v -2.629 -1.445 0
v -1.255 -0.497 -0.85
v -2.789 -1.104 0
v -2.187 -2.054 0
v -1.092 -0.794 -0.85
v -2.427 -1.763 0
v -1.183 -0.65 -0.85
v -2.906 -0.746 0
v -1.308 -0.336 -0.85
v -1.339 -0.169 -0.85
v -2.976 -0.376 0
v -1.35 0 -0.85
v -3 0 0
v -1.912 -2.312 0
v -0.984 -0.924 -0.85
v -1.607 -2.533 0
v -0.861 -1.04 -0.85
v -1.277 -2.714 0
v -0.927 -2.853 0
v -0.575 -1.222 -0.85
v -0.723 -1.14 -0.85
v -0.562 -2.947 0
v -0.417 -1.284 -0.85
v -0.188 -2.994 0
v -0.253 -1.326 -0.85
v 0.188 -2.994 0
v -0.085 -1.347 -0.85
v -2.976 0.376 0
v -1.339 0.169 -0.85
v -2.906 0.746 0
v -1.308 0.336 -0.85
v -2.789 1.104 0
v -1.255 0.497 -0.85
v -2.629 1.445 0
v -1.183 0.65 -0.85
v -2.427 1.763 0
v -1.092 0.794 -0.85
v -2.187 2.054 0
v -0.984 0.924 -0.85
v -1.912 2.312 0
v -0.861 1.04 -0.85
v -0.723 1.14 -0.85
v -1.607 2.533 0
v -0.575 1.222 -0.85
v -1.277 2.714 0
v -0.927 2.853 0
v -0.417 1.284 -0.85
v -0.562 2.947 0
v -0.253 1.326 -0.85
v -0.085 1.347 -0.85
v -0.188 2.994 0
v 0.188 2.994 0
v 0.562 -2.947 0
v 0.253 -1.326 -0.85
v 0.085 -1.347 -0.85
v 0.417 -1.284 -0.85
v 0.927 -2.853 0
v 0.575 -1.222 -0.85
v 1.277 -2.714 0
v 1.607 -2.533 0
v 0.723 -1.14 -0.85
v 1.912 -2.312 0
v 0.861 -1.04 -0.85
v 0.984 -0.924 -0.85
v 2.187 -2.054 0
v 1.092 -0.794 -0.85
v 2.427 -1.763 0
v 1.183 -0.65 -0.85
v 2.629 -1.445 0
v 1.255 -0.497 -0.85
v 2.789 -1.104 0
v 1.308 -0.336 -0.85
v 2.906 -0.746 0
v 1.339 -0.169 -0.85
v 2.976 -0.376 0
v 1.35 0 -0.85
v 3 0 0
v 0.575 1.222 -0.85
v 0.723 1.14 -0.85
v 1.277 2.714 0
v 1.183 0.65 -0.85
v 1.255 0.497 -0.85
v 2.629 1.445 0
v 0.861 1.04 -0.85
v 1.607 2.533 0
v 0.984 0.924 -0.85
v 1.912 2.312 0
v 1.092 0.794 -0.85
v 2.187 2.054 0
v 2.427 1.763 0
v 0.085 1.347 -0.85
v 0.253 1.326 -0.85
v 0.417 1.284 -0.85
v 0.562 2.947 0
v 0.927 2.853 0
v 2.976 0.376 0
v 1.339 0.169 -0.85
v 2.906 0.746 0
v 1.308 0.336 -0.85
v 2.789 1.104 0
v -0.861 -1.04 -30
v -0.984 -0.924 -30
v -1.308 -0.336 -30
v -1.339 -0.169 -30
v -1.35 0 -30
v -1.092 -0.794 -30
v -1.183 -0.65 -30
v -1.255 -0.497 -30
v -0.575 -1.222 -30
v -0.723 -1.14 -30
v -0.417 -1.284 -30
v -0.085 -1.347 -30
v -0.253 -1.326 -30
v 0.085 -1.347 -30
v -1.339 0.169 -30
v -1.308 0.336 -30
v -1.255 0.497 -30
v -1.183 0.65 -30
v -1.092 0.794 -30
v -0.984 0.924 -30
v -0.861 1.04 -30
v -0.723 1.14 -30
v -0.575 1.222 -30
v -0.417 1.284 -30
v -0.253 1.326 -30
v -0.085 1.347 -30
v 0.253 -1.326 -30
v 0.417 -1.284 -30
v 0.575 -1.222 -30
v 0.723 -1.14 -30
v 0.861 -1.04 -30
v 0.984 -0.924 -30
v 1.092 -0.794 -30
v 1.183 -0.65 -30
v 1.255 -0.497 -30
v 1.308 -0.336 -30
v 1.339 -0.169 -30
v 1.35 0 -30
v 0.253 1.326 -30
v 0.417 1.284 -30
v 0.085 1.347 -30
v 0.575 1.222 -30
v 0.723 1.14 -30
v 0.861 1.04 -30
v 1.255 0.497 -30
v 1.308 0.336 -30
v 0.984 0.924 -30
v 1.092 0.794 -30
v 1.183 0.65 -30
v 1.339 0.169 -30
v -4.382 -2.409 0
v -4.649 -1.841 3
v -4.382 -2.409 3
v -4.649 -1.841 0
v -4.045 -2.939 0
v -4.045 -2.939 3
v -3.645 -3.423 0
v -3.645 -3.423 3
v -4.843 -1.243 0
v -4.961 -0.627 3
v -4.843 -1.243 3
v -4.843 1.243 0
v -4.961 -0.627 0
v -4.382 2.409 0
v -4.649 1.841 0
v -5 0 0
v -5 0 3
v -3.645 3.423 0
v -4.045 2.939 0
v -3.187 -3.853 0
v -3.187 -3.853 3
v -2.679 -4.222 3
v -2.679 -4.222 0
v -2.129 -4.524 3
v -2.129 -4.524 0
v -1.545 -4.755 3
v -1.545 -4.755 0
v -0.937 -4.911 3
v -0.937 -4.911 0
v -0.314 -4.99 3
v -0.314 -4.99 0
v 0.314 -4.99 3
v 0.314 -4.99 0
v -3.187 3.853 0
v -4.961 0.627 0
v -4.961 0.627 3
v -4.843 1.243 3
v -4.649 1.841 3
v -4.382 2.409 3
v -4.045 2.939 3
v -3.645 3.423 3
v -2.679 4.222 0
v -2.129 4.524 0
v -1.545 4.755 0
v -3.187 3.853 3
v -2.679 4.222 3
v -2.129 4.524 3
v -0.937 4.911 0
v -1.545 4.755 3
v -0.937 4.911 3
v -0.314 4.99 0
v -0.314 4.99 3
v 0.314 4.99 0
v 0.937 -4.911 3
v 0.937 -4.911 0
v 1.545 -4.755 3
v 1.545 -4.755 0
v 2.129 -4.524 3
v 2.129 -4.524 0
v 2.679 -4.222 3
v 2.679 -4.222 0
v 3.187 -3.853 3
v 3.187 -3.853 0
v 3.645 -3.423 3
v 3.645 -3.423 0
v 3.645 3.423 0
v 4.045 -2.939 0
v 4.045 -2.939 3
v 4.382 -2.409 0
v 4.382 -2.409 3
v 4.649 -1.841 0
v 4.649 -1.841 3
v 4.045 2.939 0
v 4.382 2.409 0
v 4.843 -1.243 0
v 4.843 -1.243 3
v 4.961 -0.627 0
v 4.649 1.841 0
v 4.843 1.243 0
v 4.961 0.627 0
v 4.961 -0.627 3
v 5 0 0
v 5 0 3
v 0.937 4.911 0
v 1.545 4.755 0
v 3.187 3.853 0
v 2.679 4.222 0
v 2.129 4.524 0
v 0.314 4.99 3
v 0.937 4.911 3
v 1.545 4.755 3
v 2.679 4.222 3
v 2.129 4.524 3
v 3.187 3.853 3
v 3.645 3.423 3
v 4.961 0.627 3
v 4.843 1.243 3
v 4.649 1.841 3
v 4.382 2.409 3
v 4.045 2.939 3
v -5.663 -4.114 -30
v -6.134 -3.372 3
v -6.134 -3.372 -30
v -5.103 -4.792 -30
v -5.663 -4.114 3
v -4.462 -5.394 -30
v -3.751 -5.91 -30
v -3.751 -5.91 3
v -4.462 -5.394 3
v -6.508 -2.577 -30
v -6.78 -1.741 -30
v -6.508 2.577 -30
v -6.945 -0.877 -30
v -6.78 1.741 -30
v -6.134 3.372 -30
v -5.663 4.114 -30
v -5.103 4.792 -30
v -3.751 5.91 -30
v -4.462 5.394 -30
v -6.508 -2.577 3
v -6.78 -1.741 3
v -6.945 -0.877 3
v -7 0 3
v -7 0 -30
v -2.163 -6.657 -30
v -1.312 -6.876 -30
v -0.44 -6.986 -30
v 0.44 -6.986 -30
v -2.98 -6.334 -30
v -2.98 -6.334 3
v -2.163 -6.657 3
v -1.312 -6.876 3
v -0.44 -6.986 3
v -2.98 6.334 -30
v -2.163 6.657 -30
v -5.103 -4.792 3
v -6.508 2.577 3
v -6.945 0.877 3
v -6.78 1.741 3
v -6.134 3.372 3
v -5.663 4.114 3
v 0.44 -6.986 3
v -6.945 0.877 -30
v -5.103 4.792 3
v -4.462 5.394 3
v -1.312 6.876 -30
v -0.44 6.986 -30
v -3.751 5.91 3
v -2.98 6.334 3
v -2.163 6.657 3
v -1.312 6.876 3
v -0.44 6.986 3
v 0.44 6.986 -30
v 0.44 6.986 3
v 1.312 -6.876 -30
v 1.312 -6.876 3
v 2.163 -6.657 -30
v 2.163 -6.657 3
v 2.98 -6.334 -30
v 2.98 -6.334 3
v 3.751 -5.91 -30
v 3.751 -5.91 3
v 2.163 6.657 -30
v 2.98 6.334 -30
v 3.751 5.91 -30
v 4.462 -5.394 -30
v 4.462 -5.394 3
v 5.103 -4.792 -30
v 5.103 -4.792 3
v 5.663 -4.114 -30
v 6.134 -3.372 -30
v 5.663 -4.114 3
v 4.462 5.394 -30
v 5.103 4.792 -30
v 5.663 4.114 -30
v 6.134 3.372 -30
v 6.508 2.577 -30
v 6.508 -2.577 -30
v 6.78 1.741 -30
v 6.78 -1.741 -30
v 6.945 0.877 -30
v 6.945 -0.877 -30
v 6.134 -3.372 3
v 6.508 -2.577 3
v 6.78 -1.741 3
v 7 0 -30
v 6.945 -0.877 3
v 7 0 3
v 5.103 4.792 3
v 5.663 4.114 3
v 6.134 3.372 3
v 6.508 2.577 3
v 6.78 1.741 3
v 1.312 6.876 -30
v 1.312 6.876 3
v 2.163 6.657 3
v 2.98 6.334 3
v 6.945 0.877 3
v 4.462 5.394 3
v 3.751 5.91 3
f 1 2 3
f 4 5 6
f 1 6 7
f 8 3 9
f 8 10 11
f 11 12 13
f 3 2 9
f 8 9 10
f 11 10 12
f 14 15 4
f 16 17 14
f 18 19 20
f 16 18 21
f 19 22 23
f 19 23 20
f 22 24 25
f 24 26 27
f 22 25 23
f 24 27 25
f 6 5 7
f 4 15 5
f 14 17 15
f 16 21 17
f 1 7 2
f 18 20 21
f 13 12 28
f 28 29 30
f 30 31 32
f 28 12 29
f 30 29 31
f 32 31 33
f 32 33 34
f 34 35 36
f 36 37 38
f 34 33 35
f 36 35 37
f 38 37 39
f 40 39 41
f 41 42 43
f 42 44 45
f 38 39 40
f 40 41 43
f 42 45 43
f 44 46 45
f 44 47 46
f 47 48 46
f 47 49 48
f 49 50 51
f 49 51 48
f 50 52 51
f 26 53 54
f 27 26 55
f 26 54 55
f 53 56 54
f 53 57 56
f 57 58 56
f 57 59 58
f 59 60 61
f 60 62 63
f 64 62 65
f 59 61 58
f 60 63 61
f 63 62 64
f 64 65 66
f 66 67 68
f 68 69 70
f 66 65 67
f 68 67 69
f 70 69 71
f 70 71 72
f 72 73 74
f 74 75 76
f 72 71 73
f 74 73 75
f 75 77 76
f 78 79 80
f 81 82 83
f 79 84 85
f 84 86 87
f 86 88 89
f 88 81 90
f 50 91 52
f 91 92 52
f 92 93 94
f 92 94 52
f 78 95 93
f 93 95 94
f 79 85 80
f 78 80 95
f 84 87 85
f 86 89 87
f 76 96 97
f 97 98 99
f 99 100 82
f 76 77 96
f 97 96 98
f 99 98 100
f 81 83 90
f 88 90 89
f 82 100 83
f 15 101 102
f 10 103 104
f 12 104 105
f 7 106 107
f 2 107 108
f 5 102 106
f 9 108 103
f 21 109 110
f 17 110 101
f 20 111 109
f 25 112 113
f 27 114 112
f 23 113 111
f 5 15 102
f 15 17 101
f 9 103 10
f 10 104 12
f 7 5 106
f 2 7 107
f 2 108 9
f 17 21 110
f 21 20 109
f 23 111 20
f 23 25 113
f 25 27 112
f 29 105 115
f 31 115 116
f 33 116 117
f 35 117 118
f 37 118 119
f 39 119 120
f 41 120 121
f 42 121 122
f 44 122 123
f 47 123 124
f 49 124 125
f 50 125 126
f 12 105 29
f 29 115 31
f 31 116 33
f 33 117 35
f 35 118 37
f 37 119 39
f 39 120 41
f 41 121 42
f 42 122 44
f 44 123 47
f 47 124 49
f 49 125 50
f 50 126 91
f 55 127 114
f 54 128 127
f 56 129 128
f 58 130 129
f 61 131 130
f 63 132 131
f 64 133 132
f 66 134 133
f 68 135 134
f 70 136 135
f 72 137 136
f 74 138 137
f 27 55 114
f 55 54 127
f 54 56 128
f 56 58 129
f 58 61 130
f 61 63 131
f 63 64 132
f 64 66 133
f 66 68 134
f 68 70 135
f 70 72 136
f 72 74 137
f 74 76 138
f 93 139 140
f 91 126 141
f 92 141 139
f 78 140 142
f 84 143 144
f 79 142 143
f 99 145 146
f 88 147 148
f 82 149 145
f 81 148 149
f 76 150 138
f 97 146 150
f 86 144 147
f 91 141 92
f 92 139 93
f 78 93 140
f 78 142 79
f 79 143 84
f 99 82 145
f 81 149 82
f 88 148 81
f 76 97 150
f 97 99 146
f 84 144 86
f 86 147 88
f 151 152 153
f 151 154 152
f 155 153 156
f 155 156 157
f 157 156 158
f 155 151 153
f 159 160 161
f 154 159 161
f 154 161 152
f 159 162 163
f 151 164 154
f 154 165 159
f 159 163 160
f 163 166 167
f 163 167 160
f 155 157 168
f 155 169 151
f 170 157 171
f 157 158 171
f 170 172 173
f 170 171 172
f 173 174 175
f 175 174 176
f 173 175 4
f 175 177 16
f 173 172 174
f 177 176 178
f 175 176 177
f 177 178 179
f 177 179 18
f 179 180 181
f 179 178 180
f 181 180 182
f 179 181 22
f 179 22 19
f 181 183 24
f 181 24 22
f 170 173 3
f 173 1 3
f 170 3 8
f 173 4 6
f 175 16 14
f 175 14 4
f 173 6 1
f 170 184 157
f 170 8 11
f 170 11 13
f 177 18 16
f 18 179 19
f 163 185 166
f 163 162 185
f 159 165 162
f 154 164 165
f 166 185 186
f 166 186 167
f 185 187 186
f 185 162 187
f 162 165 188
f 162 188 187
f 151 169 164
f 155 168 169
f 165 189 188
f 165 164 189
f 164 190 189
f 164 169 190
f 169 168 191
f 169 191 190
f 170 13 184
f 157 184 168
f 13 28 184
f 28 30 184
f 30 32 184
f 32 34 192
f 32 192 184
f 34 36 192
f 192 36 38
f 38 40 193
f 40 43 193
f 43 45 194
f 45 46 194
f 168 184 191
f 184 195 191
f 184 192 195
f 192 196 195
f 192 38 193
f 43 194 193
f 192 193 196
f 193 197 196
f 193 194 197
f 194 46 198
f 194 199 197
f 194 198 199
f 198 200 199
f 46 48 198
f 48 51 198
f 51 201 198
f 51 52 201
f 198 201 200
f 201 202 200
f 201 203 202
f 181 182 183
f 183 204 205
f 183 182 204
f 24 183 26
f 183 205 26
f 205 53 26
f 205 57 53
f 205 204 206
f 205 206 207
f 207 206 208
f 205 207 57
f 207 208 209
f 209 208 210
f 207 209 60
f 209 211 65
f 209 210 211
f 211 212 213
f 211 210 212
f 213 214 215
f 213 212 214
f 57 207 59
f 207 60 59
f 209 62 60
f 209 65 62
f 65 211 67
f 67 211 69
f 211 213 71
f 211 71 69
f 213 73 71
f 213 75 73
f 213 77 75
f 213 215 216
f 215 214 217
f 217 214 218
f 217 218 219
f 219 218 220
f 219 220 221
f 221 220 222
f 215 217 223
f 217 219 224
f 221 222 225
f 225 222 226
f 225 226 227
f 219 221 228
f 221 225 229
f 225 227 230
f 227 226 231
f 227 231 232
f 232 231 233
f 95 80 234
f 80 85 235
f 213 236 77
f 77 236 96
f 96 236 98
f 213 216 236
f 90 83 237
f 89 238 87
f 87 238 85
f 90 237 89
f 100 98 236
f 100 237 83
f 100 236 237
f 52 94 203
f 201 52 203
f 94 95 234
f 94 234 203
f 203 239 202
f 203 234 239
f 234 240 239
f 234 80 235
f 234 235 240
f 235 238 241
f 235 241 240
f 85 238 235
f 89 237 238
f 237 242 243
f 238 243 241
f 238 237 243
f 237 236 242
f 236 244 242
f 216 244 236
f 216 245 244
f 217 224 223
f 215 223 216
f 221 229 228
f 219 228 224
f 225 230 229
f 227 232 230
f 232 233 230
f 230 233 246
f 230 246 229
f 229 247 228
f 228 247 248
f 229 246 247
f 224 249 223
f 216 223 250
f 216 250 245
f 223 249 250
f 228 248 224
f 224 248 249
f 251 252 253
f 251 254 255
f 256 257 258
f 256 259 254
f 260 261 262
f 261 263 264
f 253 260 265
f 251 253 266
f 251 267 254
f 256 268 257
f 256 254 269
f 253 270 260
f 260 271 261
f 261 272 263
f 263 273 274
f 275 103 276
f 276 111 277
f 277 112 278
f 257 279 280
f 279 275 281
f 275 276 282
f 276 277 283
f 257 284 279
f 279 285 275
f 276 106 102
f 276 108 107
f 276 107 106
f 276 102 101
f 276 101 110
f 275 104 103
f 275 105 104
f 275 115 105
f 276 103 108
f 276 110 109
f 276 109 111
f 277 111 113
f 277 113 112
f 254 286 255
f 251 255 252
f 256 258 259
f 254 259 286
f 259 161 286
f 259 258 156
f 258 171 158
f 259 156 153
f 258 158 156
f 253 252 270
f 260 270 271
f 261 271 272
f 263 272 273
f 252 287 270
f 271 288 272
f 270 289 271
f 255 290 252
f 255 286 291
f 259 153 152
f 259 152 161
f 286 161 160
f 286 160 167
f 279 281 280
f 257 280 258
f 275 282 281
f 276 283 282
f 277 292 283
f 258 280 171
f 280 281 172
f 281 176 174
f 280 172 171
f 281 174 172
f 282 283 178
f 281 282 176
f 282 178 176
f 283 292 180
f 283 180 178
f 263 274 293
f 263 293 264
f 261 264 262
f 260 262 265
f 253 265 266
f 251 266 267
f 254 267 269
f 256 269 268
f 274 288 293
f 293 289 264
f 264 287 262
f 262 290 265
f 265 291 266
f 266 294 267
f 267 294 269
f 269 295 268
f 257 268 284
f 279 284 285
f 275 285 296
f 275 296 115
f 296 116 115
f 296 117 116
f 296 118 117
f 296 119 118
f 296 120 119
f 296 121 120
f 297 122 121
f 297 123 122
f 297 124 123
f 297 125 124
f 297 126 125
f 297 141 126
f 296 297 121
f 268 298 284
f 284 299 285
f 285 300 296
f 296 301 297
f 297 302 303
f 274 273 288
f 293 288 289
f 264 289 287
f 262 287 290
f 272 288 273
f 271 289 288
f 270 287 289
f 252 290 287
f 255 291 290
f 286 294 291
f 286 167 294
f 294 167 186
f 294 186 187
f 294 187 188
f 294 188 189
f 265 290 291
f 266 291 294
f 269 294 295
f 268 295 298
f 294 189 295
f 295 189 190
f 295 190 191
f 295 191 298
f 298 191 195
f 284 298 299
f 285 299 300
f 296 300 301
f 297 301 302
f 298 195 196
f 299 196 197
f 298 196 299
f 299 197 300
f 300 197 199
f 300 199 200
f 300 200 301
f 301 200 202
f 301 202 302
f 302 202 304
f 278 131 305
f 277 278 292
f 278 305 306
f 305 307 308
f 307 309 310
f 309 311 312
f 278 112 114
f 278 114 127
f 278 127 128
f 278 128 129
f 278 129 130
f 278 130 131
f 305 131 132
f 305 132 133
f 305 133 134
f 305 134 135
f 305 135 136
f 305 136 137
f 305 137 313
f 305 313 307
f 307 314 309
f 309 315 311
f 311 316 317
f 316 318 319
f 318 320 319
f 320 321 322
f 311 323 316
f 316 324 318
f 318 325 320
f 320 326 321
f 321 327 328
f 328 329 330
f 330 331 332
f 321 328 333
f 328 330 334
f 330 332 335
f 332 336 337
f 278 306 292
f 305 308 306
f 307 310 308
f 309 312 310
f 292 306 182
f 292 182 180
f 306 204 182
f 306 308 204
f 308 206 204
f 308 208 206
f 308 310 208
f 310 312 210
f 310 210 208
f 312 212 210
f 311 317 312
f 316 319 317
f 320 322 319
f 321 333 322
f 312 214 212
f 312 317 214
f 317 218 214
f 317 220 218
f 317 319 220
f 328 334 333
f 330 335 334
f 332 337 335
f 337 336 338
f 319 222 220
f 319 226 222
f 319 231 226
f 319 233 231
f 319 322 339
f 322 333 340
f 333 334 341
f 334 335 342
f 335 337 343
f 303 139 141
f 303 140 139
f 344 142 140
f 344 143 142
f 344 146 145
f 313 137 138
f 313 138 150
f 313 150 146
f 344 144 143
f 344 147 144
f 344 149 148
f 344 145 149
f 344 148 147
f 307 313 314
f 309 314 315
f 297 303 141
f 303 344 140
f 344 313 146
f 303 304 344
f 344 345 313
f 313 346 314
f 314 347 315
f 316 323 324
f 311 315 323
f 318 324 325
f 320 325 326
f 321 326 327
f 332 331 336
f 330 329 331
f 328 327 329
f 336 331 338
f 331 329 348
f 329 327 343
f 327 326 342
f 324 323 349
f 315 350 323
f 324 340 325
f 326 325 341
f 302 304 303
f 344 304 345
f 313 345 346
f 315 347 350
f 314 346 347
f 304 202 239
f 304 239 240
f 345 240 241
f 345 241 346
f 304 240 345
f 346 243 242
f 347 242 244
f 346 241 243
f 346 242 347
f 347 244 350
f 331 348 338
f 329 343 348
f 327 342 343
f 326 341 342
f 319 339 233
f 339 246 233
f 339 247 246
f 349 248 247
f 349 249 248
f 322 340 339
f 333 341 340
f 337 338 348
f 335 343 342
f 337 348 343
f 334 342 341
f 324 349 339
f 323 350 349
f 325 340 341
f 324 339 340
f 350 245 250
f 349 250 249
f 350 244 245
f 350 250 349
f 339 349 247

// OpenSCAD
$fn = 50;

difference() {
	union() {
		translate(v = [0, 0, -30.0]) {
			cylinder(h = 33, r = 7.0);
		}
	}
	union() {
		translate(v = [0, 0, 0]) {
			rotate(a = [0, 0, 0]) {
				difference() {
					union() {
						translate(v = [0, 0, -33.0]) {
							cylinder(h = 33, r = 1.0);
						}
						translate(v = [0, 0, -0.85]) {
							cylinder(h = 0.85, r1 = 1.35, r2 = 3.0);
						}
						translate(v = [0, 0, -33.0]) {
							cylinder(h = 33, r = 1.35);
						}
						translate(v = [0, 0, -33.0]) {
							cylinder(h = 33, r = 1.0);
						}
					}
					union();
				}
			}
		}
		#cylinder(h = 3, r = 5.0);
	}
}
